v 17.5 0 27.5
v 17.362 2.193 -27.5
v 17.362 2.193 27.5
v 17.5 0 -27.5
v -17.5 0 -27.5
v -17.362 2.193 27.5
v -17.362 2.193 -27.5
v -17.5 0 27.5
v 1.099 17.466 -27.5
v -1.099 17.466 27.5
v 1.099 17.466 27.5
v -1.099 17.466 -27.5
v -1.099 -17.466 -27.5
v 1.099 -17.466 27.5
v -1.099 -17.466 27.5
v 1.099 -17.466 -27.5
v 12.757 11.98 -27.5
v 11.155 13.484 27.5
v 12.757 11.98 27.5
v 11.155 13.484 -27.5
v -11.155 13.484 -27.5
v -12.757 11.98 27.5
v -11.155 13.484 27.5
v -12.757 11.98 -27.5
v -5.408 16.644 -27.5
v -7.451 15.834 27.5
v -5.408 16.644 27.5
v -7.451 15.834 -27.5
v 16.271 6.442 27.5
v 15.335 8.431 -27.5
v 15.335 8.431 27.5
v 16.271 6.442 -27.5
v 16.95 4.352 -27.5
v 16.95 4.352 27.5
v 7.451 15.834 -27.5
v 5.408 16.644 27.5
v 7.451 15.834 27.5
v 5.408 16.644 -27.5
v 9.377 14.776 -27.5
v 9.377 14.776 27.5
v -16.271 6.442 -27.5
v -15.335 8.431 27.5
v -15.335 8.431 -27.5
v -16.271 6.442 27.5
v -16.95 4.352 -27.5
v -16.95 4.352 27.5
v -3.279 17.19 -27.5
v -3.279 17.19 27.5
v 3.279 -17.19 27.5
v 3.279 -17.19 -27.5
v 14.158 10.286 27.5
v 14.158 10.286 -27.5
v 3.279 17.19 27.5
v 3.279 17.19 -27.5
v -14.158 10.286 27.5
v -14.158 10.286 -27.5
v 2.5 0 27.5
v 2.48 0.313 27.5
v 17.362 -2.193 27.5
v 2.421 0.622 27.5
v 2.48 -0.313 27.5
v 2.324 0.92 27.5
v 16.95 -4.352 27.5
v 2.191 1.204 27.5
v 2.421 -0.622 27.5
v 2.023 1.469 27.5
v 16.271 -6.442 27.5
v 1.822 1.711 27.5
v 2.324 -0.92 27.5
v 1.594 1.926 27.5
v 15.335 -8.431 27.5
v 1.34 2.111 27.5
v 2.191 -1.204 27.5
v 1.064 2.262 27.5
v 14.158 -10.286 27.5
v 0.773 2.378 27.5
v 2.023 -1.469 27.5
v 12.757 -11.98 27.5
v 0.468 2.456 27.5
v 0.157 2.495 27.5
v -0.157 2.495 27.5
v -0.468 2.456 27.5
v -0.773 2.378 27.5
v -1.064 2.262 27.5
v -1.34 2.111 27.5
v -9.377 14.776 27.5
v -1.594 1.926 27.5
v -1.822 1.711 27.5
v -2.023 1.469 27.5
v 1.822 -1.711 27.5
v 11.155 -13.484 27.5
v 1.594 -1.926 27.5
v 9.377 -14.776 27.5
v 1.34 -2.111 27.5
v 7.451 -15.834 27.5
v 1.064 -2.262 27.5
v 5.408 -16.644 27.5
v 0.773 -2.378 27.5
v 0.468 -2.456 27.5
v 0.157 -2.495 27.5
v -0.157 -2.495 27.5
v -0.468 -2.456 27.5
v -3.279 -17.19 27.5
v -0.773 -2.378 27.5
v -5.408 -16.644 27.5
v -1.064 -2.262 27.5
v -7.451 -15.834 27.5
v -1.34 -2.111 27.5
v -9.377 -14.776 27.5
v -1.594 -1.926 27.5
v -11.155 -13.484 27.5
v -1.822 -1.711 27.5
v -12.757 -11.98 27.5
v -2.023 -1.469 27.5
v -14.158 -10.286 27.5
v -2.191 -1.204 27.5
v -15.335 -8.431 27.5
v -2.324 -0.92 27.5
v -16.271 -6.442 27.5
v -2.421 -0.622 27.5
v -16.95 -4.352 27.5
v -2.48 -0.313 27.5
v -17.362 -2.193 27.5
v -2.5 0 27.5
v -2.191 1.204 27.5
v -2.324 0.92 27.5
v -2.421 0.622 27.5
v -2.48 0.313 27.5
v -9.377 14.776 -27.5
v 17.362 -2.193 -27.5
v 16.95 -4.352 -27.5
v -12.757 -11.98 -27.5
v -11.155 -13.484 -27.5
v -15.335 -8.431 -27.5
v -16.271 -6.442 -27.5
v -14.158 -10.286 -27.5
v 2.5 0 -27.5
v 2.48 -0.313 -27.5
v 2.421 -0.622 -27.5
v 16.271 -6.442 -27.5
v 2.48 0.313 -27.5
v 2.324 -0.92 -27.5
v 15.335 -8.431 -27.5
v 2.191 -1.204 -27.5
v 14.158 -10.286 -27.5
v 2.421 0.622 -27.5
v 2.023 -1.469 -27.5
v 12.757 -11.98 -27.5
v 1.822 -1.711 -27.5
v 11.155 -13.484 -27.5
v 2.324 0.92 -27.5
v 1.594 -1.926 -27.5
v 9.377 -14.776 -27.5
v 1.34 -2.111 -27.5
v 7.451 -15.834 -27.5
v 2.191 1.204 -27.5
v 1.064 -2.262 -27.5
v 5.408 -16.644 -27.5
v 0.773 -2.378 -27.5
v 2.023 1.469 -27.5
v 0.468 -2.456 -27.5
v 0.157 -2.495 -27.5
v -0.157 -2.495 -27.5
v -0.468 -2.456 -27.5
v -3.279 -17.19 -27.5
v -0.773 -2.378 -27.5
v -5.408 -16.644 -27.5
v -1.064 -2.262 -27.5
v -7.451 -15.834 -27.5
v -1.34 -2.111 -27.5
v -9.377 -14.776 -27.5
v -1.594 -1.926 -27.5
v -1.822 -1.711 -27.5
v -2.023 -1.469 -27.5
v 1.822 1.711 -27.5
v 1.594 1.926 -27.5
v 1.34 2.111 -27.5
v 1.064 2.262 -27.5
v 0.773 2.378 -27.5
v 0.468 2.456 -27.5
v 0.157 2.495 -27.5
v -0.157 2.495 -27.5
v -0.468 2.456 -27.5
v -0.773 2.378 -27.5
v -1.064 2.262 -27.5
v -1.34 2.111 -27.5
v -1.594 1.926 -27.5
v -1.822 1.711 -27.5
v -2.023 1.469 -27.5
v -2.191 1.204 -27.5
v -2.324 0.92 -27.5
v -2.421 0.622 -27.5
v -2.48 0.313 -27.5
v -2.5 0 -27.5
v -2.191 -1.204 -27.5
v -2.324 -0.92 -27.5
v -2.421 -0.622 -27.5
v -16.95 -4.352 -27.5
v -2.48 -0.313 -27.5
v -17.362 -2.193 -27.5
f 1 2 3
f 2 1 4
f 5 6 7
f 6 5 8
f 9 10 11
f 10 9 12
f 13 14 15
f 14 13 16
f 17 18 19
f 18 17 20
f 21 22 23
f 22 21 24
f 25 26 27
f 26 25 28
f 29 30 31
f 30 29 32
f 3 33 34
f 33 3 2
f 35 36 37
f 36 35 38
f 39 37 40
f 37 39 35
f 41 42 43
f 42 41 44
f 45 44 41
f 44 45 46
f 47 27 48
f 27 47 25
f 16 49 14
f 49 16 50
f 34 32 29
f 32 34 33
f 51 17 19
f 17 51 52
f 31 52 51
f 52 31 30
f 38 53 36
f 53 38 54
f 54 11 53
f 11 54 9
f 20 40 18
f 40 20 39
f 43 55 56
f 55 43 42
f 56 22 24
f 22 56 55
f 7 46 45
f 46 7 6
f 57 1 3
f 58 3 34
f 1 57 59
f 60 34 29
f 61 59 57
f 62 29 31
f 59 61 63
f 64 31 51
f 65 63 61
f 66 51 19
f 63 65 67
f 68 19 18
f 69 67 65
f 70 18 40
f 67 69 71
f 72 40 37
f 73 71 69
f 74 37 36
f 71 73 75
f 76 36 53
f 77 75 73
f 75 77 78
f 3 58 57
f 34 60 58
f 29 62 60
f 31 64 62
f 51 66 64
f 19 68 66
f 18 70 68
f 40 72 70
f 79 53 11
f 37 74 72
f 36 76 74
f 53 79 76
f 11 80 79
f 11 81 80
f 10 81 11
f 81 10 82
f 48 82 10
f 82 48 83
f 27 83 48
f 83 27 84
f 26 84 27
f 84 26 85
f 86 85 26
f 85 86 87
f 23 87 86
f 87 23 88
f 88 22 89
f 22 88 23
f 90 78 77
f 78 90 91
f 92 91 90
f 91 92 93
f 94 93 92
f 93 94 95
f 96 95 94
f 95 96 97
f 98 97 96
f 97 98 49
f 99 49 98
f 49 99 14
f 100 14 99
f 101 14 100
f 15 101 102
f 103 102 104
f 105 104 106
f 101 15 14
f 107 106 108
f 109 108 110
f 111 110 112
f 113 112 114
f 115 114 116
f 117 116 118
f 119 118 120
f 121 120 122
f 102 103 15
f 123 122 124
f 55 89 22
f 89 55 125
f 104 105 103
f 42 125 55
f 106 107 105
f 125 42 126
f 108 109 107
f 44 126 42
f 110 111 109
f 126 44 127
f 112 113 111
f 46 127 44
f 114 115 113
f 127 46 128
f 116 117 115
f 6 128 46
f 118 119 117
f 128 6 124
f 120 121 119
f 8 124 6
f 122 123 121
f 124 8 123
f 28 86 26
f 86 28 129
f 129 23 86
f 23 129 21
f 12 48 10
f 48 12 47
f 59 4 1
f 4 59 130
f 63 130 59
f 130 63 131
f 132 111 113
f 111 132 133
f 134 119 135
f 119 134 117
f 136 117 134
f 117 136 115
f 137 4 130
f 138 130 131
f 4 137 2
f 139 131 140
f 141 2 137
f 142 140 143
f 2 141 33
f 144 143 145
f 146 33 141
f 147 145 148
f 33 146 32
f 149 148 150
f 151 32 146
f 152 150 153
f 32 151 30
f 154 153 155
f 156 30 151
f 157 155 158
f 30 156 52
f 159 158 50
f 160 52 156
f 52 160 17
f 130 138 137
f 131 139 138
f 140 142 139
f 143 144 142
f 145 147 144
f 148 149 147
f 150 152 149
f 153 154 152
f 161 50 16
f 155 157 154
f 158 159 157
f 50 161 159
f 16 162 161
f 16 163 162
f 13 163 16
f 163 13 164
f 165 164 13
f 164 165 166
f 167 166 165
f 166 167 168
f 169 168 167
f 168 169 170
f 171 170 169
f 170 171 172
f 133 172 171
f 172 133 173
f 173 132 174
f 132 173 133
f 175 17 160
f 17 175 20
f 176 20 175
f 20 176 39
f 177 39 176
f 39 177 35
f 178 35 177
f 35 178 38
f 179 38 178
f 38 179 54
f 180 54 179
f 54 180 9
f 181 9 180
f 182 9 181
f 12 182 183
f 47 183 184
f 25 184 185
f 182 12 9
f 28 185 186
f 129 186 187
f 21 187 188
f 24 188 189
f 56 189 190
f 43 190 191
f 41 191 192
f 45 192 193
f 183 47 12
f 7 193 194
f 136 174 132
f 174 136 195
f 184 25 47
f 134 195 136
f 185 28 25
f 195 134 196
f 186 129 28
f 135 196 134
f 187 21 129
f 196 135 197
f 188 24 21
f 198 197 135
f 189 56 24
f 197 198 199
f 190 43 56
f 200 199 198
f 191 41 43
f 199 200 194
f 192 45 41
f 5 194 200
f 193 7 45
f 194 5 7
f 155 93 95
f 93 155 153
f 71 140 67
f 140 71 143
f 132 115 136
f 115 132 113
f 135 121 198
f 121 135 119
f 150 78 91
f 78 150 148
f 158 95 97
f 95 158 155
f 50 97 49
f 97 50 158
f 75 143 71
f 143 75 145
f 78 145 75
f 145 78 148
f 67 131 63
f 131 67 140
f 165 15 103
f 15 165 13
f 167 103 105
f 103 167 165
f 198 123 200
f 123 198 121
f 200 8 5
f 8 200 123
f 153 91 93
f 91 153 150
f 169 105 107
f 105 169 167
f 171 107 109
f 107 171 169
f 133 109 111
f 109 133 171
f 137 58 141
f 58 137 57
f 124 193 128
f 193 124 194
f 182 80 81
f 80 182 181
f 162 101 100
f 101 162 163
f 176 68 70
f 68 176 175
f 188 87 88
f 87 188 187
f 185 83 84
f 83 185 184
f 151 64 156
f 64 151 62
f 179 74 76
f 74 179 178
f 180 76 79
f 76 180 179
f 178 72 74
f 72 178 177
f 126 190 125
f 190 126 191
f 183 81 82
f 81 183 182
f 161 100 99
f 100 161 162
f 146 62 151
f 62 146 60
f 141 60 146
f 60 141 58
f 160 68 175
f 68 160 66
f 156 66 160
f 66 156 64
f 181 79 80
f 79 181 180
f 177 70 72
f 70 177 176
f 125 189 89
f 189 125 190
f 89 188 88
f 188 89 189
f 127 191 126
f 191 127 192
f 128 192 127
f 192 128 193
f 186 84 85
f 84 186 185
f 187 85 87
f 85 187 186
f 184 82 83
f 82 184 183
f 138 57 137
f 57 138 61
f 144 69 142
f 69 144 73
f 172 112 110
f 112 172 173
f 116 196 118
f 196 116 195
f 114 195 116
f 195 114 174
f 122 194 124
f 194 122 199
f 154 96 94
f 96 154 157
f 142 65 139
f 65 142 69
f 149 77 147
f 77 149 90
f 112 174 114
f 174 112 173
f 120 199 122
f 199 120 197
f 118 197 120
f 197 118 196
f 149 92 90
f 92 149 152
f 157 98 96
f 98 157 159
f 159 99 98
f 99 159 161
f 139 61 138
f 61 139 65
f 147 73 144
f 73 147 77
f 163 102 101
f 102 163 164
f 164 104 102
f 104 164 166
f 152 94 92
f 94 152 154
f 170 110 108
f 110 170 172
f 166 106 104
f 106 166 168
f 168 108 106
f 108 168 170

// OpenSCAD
$fn = 50;


difference() {
	union() {
		translate(v = [0, 0, -27.5000000000]) {
			cylinder(h = 55, r = 17.5000000000);
		}
	}
	union() {
		translate(v = [0, 0, -100.0000000000]) {
			cylinder(h = 200, r = 2.5000000000);
		}
	}
}
